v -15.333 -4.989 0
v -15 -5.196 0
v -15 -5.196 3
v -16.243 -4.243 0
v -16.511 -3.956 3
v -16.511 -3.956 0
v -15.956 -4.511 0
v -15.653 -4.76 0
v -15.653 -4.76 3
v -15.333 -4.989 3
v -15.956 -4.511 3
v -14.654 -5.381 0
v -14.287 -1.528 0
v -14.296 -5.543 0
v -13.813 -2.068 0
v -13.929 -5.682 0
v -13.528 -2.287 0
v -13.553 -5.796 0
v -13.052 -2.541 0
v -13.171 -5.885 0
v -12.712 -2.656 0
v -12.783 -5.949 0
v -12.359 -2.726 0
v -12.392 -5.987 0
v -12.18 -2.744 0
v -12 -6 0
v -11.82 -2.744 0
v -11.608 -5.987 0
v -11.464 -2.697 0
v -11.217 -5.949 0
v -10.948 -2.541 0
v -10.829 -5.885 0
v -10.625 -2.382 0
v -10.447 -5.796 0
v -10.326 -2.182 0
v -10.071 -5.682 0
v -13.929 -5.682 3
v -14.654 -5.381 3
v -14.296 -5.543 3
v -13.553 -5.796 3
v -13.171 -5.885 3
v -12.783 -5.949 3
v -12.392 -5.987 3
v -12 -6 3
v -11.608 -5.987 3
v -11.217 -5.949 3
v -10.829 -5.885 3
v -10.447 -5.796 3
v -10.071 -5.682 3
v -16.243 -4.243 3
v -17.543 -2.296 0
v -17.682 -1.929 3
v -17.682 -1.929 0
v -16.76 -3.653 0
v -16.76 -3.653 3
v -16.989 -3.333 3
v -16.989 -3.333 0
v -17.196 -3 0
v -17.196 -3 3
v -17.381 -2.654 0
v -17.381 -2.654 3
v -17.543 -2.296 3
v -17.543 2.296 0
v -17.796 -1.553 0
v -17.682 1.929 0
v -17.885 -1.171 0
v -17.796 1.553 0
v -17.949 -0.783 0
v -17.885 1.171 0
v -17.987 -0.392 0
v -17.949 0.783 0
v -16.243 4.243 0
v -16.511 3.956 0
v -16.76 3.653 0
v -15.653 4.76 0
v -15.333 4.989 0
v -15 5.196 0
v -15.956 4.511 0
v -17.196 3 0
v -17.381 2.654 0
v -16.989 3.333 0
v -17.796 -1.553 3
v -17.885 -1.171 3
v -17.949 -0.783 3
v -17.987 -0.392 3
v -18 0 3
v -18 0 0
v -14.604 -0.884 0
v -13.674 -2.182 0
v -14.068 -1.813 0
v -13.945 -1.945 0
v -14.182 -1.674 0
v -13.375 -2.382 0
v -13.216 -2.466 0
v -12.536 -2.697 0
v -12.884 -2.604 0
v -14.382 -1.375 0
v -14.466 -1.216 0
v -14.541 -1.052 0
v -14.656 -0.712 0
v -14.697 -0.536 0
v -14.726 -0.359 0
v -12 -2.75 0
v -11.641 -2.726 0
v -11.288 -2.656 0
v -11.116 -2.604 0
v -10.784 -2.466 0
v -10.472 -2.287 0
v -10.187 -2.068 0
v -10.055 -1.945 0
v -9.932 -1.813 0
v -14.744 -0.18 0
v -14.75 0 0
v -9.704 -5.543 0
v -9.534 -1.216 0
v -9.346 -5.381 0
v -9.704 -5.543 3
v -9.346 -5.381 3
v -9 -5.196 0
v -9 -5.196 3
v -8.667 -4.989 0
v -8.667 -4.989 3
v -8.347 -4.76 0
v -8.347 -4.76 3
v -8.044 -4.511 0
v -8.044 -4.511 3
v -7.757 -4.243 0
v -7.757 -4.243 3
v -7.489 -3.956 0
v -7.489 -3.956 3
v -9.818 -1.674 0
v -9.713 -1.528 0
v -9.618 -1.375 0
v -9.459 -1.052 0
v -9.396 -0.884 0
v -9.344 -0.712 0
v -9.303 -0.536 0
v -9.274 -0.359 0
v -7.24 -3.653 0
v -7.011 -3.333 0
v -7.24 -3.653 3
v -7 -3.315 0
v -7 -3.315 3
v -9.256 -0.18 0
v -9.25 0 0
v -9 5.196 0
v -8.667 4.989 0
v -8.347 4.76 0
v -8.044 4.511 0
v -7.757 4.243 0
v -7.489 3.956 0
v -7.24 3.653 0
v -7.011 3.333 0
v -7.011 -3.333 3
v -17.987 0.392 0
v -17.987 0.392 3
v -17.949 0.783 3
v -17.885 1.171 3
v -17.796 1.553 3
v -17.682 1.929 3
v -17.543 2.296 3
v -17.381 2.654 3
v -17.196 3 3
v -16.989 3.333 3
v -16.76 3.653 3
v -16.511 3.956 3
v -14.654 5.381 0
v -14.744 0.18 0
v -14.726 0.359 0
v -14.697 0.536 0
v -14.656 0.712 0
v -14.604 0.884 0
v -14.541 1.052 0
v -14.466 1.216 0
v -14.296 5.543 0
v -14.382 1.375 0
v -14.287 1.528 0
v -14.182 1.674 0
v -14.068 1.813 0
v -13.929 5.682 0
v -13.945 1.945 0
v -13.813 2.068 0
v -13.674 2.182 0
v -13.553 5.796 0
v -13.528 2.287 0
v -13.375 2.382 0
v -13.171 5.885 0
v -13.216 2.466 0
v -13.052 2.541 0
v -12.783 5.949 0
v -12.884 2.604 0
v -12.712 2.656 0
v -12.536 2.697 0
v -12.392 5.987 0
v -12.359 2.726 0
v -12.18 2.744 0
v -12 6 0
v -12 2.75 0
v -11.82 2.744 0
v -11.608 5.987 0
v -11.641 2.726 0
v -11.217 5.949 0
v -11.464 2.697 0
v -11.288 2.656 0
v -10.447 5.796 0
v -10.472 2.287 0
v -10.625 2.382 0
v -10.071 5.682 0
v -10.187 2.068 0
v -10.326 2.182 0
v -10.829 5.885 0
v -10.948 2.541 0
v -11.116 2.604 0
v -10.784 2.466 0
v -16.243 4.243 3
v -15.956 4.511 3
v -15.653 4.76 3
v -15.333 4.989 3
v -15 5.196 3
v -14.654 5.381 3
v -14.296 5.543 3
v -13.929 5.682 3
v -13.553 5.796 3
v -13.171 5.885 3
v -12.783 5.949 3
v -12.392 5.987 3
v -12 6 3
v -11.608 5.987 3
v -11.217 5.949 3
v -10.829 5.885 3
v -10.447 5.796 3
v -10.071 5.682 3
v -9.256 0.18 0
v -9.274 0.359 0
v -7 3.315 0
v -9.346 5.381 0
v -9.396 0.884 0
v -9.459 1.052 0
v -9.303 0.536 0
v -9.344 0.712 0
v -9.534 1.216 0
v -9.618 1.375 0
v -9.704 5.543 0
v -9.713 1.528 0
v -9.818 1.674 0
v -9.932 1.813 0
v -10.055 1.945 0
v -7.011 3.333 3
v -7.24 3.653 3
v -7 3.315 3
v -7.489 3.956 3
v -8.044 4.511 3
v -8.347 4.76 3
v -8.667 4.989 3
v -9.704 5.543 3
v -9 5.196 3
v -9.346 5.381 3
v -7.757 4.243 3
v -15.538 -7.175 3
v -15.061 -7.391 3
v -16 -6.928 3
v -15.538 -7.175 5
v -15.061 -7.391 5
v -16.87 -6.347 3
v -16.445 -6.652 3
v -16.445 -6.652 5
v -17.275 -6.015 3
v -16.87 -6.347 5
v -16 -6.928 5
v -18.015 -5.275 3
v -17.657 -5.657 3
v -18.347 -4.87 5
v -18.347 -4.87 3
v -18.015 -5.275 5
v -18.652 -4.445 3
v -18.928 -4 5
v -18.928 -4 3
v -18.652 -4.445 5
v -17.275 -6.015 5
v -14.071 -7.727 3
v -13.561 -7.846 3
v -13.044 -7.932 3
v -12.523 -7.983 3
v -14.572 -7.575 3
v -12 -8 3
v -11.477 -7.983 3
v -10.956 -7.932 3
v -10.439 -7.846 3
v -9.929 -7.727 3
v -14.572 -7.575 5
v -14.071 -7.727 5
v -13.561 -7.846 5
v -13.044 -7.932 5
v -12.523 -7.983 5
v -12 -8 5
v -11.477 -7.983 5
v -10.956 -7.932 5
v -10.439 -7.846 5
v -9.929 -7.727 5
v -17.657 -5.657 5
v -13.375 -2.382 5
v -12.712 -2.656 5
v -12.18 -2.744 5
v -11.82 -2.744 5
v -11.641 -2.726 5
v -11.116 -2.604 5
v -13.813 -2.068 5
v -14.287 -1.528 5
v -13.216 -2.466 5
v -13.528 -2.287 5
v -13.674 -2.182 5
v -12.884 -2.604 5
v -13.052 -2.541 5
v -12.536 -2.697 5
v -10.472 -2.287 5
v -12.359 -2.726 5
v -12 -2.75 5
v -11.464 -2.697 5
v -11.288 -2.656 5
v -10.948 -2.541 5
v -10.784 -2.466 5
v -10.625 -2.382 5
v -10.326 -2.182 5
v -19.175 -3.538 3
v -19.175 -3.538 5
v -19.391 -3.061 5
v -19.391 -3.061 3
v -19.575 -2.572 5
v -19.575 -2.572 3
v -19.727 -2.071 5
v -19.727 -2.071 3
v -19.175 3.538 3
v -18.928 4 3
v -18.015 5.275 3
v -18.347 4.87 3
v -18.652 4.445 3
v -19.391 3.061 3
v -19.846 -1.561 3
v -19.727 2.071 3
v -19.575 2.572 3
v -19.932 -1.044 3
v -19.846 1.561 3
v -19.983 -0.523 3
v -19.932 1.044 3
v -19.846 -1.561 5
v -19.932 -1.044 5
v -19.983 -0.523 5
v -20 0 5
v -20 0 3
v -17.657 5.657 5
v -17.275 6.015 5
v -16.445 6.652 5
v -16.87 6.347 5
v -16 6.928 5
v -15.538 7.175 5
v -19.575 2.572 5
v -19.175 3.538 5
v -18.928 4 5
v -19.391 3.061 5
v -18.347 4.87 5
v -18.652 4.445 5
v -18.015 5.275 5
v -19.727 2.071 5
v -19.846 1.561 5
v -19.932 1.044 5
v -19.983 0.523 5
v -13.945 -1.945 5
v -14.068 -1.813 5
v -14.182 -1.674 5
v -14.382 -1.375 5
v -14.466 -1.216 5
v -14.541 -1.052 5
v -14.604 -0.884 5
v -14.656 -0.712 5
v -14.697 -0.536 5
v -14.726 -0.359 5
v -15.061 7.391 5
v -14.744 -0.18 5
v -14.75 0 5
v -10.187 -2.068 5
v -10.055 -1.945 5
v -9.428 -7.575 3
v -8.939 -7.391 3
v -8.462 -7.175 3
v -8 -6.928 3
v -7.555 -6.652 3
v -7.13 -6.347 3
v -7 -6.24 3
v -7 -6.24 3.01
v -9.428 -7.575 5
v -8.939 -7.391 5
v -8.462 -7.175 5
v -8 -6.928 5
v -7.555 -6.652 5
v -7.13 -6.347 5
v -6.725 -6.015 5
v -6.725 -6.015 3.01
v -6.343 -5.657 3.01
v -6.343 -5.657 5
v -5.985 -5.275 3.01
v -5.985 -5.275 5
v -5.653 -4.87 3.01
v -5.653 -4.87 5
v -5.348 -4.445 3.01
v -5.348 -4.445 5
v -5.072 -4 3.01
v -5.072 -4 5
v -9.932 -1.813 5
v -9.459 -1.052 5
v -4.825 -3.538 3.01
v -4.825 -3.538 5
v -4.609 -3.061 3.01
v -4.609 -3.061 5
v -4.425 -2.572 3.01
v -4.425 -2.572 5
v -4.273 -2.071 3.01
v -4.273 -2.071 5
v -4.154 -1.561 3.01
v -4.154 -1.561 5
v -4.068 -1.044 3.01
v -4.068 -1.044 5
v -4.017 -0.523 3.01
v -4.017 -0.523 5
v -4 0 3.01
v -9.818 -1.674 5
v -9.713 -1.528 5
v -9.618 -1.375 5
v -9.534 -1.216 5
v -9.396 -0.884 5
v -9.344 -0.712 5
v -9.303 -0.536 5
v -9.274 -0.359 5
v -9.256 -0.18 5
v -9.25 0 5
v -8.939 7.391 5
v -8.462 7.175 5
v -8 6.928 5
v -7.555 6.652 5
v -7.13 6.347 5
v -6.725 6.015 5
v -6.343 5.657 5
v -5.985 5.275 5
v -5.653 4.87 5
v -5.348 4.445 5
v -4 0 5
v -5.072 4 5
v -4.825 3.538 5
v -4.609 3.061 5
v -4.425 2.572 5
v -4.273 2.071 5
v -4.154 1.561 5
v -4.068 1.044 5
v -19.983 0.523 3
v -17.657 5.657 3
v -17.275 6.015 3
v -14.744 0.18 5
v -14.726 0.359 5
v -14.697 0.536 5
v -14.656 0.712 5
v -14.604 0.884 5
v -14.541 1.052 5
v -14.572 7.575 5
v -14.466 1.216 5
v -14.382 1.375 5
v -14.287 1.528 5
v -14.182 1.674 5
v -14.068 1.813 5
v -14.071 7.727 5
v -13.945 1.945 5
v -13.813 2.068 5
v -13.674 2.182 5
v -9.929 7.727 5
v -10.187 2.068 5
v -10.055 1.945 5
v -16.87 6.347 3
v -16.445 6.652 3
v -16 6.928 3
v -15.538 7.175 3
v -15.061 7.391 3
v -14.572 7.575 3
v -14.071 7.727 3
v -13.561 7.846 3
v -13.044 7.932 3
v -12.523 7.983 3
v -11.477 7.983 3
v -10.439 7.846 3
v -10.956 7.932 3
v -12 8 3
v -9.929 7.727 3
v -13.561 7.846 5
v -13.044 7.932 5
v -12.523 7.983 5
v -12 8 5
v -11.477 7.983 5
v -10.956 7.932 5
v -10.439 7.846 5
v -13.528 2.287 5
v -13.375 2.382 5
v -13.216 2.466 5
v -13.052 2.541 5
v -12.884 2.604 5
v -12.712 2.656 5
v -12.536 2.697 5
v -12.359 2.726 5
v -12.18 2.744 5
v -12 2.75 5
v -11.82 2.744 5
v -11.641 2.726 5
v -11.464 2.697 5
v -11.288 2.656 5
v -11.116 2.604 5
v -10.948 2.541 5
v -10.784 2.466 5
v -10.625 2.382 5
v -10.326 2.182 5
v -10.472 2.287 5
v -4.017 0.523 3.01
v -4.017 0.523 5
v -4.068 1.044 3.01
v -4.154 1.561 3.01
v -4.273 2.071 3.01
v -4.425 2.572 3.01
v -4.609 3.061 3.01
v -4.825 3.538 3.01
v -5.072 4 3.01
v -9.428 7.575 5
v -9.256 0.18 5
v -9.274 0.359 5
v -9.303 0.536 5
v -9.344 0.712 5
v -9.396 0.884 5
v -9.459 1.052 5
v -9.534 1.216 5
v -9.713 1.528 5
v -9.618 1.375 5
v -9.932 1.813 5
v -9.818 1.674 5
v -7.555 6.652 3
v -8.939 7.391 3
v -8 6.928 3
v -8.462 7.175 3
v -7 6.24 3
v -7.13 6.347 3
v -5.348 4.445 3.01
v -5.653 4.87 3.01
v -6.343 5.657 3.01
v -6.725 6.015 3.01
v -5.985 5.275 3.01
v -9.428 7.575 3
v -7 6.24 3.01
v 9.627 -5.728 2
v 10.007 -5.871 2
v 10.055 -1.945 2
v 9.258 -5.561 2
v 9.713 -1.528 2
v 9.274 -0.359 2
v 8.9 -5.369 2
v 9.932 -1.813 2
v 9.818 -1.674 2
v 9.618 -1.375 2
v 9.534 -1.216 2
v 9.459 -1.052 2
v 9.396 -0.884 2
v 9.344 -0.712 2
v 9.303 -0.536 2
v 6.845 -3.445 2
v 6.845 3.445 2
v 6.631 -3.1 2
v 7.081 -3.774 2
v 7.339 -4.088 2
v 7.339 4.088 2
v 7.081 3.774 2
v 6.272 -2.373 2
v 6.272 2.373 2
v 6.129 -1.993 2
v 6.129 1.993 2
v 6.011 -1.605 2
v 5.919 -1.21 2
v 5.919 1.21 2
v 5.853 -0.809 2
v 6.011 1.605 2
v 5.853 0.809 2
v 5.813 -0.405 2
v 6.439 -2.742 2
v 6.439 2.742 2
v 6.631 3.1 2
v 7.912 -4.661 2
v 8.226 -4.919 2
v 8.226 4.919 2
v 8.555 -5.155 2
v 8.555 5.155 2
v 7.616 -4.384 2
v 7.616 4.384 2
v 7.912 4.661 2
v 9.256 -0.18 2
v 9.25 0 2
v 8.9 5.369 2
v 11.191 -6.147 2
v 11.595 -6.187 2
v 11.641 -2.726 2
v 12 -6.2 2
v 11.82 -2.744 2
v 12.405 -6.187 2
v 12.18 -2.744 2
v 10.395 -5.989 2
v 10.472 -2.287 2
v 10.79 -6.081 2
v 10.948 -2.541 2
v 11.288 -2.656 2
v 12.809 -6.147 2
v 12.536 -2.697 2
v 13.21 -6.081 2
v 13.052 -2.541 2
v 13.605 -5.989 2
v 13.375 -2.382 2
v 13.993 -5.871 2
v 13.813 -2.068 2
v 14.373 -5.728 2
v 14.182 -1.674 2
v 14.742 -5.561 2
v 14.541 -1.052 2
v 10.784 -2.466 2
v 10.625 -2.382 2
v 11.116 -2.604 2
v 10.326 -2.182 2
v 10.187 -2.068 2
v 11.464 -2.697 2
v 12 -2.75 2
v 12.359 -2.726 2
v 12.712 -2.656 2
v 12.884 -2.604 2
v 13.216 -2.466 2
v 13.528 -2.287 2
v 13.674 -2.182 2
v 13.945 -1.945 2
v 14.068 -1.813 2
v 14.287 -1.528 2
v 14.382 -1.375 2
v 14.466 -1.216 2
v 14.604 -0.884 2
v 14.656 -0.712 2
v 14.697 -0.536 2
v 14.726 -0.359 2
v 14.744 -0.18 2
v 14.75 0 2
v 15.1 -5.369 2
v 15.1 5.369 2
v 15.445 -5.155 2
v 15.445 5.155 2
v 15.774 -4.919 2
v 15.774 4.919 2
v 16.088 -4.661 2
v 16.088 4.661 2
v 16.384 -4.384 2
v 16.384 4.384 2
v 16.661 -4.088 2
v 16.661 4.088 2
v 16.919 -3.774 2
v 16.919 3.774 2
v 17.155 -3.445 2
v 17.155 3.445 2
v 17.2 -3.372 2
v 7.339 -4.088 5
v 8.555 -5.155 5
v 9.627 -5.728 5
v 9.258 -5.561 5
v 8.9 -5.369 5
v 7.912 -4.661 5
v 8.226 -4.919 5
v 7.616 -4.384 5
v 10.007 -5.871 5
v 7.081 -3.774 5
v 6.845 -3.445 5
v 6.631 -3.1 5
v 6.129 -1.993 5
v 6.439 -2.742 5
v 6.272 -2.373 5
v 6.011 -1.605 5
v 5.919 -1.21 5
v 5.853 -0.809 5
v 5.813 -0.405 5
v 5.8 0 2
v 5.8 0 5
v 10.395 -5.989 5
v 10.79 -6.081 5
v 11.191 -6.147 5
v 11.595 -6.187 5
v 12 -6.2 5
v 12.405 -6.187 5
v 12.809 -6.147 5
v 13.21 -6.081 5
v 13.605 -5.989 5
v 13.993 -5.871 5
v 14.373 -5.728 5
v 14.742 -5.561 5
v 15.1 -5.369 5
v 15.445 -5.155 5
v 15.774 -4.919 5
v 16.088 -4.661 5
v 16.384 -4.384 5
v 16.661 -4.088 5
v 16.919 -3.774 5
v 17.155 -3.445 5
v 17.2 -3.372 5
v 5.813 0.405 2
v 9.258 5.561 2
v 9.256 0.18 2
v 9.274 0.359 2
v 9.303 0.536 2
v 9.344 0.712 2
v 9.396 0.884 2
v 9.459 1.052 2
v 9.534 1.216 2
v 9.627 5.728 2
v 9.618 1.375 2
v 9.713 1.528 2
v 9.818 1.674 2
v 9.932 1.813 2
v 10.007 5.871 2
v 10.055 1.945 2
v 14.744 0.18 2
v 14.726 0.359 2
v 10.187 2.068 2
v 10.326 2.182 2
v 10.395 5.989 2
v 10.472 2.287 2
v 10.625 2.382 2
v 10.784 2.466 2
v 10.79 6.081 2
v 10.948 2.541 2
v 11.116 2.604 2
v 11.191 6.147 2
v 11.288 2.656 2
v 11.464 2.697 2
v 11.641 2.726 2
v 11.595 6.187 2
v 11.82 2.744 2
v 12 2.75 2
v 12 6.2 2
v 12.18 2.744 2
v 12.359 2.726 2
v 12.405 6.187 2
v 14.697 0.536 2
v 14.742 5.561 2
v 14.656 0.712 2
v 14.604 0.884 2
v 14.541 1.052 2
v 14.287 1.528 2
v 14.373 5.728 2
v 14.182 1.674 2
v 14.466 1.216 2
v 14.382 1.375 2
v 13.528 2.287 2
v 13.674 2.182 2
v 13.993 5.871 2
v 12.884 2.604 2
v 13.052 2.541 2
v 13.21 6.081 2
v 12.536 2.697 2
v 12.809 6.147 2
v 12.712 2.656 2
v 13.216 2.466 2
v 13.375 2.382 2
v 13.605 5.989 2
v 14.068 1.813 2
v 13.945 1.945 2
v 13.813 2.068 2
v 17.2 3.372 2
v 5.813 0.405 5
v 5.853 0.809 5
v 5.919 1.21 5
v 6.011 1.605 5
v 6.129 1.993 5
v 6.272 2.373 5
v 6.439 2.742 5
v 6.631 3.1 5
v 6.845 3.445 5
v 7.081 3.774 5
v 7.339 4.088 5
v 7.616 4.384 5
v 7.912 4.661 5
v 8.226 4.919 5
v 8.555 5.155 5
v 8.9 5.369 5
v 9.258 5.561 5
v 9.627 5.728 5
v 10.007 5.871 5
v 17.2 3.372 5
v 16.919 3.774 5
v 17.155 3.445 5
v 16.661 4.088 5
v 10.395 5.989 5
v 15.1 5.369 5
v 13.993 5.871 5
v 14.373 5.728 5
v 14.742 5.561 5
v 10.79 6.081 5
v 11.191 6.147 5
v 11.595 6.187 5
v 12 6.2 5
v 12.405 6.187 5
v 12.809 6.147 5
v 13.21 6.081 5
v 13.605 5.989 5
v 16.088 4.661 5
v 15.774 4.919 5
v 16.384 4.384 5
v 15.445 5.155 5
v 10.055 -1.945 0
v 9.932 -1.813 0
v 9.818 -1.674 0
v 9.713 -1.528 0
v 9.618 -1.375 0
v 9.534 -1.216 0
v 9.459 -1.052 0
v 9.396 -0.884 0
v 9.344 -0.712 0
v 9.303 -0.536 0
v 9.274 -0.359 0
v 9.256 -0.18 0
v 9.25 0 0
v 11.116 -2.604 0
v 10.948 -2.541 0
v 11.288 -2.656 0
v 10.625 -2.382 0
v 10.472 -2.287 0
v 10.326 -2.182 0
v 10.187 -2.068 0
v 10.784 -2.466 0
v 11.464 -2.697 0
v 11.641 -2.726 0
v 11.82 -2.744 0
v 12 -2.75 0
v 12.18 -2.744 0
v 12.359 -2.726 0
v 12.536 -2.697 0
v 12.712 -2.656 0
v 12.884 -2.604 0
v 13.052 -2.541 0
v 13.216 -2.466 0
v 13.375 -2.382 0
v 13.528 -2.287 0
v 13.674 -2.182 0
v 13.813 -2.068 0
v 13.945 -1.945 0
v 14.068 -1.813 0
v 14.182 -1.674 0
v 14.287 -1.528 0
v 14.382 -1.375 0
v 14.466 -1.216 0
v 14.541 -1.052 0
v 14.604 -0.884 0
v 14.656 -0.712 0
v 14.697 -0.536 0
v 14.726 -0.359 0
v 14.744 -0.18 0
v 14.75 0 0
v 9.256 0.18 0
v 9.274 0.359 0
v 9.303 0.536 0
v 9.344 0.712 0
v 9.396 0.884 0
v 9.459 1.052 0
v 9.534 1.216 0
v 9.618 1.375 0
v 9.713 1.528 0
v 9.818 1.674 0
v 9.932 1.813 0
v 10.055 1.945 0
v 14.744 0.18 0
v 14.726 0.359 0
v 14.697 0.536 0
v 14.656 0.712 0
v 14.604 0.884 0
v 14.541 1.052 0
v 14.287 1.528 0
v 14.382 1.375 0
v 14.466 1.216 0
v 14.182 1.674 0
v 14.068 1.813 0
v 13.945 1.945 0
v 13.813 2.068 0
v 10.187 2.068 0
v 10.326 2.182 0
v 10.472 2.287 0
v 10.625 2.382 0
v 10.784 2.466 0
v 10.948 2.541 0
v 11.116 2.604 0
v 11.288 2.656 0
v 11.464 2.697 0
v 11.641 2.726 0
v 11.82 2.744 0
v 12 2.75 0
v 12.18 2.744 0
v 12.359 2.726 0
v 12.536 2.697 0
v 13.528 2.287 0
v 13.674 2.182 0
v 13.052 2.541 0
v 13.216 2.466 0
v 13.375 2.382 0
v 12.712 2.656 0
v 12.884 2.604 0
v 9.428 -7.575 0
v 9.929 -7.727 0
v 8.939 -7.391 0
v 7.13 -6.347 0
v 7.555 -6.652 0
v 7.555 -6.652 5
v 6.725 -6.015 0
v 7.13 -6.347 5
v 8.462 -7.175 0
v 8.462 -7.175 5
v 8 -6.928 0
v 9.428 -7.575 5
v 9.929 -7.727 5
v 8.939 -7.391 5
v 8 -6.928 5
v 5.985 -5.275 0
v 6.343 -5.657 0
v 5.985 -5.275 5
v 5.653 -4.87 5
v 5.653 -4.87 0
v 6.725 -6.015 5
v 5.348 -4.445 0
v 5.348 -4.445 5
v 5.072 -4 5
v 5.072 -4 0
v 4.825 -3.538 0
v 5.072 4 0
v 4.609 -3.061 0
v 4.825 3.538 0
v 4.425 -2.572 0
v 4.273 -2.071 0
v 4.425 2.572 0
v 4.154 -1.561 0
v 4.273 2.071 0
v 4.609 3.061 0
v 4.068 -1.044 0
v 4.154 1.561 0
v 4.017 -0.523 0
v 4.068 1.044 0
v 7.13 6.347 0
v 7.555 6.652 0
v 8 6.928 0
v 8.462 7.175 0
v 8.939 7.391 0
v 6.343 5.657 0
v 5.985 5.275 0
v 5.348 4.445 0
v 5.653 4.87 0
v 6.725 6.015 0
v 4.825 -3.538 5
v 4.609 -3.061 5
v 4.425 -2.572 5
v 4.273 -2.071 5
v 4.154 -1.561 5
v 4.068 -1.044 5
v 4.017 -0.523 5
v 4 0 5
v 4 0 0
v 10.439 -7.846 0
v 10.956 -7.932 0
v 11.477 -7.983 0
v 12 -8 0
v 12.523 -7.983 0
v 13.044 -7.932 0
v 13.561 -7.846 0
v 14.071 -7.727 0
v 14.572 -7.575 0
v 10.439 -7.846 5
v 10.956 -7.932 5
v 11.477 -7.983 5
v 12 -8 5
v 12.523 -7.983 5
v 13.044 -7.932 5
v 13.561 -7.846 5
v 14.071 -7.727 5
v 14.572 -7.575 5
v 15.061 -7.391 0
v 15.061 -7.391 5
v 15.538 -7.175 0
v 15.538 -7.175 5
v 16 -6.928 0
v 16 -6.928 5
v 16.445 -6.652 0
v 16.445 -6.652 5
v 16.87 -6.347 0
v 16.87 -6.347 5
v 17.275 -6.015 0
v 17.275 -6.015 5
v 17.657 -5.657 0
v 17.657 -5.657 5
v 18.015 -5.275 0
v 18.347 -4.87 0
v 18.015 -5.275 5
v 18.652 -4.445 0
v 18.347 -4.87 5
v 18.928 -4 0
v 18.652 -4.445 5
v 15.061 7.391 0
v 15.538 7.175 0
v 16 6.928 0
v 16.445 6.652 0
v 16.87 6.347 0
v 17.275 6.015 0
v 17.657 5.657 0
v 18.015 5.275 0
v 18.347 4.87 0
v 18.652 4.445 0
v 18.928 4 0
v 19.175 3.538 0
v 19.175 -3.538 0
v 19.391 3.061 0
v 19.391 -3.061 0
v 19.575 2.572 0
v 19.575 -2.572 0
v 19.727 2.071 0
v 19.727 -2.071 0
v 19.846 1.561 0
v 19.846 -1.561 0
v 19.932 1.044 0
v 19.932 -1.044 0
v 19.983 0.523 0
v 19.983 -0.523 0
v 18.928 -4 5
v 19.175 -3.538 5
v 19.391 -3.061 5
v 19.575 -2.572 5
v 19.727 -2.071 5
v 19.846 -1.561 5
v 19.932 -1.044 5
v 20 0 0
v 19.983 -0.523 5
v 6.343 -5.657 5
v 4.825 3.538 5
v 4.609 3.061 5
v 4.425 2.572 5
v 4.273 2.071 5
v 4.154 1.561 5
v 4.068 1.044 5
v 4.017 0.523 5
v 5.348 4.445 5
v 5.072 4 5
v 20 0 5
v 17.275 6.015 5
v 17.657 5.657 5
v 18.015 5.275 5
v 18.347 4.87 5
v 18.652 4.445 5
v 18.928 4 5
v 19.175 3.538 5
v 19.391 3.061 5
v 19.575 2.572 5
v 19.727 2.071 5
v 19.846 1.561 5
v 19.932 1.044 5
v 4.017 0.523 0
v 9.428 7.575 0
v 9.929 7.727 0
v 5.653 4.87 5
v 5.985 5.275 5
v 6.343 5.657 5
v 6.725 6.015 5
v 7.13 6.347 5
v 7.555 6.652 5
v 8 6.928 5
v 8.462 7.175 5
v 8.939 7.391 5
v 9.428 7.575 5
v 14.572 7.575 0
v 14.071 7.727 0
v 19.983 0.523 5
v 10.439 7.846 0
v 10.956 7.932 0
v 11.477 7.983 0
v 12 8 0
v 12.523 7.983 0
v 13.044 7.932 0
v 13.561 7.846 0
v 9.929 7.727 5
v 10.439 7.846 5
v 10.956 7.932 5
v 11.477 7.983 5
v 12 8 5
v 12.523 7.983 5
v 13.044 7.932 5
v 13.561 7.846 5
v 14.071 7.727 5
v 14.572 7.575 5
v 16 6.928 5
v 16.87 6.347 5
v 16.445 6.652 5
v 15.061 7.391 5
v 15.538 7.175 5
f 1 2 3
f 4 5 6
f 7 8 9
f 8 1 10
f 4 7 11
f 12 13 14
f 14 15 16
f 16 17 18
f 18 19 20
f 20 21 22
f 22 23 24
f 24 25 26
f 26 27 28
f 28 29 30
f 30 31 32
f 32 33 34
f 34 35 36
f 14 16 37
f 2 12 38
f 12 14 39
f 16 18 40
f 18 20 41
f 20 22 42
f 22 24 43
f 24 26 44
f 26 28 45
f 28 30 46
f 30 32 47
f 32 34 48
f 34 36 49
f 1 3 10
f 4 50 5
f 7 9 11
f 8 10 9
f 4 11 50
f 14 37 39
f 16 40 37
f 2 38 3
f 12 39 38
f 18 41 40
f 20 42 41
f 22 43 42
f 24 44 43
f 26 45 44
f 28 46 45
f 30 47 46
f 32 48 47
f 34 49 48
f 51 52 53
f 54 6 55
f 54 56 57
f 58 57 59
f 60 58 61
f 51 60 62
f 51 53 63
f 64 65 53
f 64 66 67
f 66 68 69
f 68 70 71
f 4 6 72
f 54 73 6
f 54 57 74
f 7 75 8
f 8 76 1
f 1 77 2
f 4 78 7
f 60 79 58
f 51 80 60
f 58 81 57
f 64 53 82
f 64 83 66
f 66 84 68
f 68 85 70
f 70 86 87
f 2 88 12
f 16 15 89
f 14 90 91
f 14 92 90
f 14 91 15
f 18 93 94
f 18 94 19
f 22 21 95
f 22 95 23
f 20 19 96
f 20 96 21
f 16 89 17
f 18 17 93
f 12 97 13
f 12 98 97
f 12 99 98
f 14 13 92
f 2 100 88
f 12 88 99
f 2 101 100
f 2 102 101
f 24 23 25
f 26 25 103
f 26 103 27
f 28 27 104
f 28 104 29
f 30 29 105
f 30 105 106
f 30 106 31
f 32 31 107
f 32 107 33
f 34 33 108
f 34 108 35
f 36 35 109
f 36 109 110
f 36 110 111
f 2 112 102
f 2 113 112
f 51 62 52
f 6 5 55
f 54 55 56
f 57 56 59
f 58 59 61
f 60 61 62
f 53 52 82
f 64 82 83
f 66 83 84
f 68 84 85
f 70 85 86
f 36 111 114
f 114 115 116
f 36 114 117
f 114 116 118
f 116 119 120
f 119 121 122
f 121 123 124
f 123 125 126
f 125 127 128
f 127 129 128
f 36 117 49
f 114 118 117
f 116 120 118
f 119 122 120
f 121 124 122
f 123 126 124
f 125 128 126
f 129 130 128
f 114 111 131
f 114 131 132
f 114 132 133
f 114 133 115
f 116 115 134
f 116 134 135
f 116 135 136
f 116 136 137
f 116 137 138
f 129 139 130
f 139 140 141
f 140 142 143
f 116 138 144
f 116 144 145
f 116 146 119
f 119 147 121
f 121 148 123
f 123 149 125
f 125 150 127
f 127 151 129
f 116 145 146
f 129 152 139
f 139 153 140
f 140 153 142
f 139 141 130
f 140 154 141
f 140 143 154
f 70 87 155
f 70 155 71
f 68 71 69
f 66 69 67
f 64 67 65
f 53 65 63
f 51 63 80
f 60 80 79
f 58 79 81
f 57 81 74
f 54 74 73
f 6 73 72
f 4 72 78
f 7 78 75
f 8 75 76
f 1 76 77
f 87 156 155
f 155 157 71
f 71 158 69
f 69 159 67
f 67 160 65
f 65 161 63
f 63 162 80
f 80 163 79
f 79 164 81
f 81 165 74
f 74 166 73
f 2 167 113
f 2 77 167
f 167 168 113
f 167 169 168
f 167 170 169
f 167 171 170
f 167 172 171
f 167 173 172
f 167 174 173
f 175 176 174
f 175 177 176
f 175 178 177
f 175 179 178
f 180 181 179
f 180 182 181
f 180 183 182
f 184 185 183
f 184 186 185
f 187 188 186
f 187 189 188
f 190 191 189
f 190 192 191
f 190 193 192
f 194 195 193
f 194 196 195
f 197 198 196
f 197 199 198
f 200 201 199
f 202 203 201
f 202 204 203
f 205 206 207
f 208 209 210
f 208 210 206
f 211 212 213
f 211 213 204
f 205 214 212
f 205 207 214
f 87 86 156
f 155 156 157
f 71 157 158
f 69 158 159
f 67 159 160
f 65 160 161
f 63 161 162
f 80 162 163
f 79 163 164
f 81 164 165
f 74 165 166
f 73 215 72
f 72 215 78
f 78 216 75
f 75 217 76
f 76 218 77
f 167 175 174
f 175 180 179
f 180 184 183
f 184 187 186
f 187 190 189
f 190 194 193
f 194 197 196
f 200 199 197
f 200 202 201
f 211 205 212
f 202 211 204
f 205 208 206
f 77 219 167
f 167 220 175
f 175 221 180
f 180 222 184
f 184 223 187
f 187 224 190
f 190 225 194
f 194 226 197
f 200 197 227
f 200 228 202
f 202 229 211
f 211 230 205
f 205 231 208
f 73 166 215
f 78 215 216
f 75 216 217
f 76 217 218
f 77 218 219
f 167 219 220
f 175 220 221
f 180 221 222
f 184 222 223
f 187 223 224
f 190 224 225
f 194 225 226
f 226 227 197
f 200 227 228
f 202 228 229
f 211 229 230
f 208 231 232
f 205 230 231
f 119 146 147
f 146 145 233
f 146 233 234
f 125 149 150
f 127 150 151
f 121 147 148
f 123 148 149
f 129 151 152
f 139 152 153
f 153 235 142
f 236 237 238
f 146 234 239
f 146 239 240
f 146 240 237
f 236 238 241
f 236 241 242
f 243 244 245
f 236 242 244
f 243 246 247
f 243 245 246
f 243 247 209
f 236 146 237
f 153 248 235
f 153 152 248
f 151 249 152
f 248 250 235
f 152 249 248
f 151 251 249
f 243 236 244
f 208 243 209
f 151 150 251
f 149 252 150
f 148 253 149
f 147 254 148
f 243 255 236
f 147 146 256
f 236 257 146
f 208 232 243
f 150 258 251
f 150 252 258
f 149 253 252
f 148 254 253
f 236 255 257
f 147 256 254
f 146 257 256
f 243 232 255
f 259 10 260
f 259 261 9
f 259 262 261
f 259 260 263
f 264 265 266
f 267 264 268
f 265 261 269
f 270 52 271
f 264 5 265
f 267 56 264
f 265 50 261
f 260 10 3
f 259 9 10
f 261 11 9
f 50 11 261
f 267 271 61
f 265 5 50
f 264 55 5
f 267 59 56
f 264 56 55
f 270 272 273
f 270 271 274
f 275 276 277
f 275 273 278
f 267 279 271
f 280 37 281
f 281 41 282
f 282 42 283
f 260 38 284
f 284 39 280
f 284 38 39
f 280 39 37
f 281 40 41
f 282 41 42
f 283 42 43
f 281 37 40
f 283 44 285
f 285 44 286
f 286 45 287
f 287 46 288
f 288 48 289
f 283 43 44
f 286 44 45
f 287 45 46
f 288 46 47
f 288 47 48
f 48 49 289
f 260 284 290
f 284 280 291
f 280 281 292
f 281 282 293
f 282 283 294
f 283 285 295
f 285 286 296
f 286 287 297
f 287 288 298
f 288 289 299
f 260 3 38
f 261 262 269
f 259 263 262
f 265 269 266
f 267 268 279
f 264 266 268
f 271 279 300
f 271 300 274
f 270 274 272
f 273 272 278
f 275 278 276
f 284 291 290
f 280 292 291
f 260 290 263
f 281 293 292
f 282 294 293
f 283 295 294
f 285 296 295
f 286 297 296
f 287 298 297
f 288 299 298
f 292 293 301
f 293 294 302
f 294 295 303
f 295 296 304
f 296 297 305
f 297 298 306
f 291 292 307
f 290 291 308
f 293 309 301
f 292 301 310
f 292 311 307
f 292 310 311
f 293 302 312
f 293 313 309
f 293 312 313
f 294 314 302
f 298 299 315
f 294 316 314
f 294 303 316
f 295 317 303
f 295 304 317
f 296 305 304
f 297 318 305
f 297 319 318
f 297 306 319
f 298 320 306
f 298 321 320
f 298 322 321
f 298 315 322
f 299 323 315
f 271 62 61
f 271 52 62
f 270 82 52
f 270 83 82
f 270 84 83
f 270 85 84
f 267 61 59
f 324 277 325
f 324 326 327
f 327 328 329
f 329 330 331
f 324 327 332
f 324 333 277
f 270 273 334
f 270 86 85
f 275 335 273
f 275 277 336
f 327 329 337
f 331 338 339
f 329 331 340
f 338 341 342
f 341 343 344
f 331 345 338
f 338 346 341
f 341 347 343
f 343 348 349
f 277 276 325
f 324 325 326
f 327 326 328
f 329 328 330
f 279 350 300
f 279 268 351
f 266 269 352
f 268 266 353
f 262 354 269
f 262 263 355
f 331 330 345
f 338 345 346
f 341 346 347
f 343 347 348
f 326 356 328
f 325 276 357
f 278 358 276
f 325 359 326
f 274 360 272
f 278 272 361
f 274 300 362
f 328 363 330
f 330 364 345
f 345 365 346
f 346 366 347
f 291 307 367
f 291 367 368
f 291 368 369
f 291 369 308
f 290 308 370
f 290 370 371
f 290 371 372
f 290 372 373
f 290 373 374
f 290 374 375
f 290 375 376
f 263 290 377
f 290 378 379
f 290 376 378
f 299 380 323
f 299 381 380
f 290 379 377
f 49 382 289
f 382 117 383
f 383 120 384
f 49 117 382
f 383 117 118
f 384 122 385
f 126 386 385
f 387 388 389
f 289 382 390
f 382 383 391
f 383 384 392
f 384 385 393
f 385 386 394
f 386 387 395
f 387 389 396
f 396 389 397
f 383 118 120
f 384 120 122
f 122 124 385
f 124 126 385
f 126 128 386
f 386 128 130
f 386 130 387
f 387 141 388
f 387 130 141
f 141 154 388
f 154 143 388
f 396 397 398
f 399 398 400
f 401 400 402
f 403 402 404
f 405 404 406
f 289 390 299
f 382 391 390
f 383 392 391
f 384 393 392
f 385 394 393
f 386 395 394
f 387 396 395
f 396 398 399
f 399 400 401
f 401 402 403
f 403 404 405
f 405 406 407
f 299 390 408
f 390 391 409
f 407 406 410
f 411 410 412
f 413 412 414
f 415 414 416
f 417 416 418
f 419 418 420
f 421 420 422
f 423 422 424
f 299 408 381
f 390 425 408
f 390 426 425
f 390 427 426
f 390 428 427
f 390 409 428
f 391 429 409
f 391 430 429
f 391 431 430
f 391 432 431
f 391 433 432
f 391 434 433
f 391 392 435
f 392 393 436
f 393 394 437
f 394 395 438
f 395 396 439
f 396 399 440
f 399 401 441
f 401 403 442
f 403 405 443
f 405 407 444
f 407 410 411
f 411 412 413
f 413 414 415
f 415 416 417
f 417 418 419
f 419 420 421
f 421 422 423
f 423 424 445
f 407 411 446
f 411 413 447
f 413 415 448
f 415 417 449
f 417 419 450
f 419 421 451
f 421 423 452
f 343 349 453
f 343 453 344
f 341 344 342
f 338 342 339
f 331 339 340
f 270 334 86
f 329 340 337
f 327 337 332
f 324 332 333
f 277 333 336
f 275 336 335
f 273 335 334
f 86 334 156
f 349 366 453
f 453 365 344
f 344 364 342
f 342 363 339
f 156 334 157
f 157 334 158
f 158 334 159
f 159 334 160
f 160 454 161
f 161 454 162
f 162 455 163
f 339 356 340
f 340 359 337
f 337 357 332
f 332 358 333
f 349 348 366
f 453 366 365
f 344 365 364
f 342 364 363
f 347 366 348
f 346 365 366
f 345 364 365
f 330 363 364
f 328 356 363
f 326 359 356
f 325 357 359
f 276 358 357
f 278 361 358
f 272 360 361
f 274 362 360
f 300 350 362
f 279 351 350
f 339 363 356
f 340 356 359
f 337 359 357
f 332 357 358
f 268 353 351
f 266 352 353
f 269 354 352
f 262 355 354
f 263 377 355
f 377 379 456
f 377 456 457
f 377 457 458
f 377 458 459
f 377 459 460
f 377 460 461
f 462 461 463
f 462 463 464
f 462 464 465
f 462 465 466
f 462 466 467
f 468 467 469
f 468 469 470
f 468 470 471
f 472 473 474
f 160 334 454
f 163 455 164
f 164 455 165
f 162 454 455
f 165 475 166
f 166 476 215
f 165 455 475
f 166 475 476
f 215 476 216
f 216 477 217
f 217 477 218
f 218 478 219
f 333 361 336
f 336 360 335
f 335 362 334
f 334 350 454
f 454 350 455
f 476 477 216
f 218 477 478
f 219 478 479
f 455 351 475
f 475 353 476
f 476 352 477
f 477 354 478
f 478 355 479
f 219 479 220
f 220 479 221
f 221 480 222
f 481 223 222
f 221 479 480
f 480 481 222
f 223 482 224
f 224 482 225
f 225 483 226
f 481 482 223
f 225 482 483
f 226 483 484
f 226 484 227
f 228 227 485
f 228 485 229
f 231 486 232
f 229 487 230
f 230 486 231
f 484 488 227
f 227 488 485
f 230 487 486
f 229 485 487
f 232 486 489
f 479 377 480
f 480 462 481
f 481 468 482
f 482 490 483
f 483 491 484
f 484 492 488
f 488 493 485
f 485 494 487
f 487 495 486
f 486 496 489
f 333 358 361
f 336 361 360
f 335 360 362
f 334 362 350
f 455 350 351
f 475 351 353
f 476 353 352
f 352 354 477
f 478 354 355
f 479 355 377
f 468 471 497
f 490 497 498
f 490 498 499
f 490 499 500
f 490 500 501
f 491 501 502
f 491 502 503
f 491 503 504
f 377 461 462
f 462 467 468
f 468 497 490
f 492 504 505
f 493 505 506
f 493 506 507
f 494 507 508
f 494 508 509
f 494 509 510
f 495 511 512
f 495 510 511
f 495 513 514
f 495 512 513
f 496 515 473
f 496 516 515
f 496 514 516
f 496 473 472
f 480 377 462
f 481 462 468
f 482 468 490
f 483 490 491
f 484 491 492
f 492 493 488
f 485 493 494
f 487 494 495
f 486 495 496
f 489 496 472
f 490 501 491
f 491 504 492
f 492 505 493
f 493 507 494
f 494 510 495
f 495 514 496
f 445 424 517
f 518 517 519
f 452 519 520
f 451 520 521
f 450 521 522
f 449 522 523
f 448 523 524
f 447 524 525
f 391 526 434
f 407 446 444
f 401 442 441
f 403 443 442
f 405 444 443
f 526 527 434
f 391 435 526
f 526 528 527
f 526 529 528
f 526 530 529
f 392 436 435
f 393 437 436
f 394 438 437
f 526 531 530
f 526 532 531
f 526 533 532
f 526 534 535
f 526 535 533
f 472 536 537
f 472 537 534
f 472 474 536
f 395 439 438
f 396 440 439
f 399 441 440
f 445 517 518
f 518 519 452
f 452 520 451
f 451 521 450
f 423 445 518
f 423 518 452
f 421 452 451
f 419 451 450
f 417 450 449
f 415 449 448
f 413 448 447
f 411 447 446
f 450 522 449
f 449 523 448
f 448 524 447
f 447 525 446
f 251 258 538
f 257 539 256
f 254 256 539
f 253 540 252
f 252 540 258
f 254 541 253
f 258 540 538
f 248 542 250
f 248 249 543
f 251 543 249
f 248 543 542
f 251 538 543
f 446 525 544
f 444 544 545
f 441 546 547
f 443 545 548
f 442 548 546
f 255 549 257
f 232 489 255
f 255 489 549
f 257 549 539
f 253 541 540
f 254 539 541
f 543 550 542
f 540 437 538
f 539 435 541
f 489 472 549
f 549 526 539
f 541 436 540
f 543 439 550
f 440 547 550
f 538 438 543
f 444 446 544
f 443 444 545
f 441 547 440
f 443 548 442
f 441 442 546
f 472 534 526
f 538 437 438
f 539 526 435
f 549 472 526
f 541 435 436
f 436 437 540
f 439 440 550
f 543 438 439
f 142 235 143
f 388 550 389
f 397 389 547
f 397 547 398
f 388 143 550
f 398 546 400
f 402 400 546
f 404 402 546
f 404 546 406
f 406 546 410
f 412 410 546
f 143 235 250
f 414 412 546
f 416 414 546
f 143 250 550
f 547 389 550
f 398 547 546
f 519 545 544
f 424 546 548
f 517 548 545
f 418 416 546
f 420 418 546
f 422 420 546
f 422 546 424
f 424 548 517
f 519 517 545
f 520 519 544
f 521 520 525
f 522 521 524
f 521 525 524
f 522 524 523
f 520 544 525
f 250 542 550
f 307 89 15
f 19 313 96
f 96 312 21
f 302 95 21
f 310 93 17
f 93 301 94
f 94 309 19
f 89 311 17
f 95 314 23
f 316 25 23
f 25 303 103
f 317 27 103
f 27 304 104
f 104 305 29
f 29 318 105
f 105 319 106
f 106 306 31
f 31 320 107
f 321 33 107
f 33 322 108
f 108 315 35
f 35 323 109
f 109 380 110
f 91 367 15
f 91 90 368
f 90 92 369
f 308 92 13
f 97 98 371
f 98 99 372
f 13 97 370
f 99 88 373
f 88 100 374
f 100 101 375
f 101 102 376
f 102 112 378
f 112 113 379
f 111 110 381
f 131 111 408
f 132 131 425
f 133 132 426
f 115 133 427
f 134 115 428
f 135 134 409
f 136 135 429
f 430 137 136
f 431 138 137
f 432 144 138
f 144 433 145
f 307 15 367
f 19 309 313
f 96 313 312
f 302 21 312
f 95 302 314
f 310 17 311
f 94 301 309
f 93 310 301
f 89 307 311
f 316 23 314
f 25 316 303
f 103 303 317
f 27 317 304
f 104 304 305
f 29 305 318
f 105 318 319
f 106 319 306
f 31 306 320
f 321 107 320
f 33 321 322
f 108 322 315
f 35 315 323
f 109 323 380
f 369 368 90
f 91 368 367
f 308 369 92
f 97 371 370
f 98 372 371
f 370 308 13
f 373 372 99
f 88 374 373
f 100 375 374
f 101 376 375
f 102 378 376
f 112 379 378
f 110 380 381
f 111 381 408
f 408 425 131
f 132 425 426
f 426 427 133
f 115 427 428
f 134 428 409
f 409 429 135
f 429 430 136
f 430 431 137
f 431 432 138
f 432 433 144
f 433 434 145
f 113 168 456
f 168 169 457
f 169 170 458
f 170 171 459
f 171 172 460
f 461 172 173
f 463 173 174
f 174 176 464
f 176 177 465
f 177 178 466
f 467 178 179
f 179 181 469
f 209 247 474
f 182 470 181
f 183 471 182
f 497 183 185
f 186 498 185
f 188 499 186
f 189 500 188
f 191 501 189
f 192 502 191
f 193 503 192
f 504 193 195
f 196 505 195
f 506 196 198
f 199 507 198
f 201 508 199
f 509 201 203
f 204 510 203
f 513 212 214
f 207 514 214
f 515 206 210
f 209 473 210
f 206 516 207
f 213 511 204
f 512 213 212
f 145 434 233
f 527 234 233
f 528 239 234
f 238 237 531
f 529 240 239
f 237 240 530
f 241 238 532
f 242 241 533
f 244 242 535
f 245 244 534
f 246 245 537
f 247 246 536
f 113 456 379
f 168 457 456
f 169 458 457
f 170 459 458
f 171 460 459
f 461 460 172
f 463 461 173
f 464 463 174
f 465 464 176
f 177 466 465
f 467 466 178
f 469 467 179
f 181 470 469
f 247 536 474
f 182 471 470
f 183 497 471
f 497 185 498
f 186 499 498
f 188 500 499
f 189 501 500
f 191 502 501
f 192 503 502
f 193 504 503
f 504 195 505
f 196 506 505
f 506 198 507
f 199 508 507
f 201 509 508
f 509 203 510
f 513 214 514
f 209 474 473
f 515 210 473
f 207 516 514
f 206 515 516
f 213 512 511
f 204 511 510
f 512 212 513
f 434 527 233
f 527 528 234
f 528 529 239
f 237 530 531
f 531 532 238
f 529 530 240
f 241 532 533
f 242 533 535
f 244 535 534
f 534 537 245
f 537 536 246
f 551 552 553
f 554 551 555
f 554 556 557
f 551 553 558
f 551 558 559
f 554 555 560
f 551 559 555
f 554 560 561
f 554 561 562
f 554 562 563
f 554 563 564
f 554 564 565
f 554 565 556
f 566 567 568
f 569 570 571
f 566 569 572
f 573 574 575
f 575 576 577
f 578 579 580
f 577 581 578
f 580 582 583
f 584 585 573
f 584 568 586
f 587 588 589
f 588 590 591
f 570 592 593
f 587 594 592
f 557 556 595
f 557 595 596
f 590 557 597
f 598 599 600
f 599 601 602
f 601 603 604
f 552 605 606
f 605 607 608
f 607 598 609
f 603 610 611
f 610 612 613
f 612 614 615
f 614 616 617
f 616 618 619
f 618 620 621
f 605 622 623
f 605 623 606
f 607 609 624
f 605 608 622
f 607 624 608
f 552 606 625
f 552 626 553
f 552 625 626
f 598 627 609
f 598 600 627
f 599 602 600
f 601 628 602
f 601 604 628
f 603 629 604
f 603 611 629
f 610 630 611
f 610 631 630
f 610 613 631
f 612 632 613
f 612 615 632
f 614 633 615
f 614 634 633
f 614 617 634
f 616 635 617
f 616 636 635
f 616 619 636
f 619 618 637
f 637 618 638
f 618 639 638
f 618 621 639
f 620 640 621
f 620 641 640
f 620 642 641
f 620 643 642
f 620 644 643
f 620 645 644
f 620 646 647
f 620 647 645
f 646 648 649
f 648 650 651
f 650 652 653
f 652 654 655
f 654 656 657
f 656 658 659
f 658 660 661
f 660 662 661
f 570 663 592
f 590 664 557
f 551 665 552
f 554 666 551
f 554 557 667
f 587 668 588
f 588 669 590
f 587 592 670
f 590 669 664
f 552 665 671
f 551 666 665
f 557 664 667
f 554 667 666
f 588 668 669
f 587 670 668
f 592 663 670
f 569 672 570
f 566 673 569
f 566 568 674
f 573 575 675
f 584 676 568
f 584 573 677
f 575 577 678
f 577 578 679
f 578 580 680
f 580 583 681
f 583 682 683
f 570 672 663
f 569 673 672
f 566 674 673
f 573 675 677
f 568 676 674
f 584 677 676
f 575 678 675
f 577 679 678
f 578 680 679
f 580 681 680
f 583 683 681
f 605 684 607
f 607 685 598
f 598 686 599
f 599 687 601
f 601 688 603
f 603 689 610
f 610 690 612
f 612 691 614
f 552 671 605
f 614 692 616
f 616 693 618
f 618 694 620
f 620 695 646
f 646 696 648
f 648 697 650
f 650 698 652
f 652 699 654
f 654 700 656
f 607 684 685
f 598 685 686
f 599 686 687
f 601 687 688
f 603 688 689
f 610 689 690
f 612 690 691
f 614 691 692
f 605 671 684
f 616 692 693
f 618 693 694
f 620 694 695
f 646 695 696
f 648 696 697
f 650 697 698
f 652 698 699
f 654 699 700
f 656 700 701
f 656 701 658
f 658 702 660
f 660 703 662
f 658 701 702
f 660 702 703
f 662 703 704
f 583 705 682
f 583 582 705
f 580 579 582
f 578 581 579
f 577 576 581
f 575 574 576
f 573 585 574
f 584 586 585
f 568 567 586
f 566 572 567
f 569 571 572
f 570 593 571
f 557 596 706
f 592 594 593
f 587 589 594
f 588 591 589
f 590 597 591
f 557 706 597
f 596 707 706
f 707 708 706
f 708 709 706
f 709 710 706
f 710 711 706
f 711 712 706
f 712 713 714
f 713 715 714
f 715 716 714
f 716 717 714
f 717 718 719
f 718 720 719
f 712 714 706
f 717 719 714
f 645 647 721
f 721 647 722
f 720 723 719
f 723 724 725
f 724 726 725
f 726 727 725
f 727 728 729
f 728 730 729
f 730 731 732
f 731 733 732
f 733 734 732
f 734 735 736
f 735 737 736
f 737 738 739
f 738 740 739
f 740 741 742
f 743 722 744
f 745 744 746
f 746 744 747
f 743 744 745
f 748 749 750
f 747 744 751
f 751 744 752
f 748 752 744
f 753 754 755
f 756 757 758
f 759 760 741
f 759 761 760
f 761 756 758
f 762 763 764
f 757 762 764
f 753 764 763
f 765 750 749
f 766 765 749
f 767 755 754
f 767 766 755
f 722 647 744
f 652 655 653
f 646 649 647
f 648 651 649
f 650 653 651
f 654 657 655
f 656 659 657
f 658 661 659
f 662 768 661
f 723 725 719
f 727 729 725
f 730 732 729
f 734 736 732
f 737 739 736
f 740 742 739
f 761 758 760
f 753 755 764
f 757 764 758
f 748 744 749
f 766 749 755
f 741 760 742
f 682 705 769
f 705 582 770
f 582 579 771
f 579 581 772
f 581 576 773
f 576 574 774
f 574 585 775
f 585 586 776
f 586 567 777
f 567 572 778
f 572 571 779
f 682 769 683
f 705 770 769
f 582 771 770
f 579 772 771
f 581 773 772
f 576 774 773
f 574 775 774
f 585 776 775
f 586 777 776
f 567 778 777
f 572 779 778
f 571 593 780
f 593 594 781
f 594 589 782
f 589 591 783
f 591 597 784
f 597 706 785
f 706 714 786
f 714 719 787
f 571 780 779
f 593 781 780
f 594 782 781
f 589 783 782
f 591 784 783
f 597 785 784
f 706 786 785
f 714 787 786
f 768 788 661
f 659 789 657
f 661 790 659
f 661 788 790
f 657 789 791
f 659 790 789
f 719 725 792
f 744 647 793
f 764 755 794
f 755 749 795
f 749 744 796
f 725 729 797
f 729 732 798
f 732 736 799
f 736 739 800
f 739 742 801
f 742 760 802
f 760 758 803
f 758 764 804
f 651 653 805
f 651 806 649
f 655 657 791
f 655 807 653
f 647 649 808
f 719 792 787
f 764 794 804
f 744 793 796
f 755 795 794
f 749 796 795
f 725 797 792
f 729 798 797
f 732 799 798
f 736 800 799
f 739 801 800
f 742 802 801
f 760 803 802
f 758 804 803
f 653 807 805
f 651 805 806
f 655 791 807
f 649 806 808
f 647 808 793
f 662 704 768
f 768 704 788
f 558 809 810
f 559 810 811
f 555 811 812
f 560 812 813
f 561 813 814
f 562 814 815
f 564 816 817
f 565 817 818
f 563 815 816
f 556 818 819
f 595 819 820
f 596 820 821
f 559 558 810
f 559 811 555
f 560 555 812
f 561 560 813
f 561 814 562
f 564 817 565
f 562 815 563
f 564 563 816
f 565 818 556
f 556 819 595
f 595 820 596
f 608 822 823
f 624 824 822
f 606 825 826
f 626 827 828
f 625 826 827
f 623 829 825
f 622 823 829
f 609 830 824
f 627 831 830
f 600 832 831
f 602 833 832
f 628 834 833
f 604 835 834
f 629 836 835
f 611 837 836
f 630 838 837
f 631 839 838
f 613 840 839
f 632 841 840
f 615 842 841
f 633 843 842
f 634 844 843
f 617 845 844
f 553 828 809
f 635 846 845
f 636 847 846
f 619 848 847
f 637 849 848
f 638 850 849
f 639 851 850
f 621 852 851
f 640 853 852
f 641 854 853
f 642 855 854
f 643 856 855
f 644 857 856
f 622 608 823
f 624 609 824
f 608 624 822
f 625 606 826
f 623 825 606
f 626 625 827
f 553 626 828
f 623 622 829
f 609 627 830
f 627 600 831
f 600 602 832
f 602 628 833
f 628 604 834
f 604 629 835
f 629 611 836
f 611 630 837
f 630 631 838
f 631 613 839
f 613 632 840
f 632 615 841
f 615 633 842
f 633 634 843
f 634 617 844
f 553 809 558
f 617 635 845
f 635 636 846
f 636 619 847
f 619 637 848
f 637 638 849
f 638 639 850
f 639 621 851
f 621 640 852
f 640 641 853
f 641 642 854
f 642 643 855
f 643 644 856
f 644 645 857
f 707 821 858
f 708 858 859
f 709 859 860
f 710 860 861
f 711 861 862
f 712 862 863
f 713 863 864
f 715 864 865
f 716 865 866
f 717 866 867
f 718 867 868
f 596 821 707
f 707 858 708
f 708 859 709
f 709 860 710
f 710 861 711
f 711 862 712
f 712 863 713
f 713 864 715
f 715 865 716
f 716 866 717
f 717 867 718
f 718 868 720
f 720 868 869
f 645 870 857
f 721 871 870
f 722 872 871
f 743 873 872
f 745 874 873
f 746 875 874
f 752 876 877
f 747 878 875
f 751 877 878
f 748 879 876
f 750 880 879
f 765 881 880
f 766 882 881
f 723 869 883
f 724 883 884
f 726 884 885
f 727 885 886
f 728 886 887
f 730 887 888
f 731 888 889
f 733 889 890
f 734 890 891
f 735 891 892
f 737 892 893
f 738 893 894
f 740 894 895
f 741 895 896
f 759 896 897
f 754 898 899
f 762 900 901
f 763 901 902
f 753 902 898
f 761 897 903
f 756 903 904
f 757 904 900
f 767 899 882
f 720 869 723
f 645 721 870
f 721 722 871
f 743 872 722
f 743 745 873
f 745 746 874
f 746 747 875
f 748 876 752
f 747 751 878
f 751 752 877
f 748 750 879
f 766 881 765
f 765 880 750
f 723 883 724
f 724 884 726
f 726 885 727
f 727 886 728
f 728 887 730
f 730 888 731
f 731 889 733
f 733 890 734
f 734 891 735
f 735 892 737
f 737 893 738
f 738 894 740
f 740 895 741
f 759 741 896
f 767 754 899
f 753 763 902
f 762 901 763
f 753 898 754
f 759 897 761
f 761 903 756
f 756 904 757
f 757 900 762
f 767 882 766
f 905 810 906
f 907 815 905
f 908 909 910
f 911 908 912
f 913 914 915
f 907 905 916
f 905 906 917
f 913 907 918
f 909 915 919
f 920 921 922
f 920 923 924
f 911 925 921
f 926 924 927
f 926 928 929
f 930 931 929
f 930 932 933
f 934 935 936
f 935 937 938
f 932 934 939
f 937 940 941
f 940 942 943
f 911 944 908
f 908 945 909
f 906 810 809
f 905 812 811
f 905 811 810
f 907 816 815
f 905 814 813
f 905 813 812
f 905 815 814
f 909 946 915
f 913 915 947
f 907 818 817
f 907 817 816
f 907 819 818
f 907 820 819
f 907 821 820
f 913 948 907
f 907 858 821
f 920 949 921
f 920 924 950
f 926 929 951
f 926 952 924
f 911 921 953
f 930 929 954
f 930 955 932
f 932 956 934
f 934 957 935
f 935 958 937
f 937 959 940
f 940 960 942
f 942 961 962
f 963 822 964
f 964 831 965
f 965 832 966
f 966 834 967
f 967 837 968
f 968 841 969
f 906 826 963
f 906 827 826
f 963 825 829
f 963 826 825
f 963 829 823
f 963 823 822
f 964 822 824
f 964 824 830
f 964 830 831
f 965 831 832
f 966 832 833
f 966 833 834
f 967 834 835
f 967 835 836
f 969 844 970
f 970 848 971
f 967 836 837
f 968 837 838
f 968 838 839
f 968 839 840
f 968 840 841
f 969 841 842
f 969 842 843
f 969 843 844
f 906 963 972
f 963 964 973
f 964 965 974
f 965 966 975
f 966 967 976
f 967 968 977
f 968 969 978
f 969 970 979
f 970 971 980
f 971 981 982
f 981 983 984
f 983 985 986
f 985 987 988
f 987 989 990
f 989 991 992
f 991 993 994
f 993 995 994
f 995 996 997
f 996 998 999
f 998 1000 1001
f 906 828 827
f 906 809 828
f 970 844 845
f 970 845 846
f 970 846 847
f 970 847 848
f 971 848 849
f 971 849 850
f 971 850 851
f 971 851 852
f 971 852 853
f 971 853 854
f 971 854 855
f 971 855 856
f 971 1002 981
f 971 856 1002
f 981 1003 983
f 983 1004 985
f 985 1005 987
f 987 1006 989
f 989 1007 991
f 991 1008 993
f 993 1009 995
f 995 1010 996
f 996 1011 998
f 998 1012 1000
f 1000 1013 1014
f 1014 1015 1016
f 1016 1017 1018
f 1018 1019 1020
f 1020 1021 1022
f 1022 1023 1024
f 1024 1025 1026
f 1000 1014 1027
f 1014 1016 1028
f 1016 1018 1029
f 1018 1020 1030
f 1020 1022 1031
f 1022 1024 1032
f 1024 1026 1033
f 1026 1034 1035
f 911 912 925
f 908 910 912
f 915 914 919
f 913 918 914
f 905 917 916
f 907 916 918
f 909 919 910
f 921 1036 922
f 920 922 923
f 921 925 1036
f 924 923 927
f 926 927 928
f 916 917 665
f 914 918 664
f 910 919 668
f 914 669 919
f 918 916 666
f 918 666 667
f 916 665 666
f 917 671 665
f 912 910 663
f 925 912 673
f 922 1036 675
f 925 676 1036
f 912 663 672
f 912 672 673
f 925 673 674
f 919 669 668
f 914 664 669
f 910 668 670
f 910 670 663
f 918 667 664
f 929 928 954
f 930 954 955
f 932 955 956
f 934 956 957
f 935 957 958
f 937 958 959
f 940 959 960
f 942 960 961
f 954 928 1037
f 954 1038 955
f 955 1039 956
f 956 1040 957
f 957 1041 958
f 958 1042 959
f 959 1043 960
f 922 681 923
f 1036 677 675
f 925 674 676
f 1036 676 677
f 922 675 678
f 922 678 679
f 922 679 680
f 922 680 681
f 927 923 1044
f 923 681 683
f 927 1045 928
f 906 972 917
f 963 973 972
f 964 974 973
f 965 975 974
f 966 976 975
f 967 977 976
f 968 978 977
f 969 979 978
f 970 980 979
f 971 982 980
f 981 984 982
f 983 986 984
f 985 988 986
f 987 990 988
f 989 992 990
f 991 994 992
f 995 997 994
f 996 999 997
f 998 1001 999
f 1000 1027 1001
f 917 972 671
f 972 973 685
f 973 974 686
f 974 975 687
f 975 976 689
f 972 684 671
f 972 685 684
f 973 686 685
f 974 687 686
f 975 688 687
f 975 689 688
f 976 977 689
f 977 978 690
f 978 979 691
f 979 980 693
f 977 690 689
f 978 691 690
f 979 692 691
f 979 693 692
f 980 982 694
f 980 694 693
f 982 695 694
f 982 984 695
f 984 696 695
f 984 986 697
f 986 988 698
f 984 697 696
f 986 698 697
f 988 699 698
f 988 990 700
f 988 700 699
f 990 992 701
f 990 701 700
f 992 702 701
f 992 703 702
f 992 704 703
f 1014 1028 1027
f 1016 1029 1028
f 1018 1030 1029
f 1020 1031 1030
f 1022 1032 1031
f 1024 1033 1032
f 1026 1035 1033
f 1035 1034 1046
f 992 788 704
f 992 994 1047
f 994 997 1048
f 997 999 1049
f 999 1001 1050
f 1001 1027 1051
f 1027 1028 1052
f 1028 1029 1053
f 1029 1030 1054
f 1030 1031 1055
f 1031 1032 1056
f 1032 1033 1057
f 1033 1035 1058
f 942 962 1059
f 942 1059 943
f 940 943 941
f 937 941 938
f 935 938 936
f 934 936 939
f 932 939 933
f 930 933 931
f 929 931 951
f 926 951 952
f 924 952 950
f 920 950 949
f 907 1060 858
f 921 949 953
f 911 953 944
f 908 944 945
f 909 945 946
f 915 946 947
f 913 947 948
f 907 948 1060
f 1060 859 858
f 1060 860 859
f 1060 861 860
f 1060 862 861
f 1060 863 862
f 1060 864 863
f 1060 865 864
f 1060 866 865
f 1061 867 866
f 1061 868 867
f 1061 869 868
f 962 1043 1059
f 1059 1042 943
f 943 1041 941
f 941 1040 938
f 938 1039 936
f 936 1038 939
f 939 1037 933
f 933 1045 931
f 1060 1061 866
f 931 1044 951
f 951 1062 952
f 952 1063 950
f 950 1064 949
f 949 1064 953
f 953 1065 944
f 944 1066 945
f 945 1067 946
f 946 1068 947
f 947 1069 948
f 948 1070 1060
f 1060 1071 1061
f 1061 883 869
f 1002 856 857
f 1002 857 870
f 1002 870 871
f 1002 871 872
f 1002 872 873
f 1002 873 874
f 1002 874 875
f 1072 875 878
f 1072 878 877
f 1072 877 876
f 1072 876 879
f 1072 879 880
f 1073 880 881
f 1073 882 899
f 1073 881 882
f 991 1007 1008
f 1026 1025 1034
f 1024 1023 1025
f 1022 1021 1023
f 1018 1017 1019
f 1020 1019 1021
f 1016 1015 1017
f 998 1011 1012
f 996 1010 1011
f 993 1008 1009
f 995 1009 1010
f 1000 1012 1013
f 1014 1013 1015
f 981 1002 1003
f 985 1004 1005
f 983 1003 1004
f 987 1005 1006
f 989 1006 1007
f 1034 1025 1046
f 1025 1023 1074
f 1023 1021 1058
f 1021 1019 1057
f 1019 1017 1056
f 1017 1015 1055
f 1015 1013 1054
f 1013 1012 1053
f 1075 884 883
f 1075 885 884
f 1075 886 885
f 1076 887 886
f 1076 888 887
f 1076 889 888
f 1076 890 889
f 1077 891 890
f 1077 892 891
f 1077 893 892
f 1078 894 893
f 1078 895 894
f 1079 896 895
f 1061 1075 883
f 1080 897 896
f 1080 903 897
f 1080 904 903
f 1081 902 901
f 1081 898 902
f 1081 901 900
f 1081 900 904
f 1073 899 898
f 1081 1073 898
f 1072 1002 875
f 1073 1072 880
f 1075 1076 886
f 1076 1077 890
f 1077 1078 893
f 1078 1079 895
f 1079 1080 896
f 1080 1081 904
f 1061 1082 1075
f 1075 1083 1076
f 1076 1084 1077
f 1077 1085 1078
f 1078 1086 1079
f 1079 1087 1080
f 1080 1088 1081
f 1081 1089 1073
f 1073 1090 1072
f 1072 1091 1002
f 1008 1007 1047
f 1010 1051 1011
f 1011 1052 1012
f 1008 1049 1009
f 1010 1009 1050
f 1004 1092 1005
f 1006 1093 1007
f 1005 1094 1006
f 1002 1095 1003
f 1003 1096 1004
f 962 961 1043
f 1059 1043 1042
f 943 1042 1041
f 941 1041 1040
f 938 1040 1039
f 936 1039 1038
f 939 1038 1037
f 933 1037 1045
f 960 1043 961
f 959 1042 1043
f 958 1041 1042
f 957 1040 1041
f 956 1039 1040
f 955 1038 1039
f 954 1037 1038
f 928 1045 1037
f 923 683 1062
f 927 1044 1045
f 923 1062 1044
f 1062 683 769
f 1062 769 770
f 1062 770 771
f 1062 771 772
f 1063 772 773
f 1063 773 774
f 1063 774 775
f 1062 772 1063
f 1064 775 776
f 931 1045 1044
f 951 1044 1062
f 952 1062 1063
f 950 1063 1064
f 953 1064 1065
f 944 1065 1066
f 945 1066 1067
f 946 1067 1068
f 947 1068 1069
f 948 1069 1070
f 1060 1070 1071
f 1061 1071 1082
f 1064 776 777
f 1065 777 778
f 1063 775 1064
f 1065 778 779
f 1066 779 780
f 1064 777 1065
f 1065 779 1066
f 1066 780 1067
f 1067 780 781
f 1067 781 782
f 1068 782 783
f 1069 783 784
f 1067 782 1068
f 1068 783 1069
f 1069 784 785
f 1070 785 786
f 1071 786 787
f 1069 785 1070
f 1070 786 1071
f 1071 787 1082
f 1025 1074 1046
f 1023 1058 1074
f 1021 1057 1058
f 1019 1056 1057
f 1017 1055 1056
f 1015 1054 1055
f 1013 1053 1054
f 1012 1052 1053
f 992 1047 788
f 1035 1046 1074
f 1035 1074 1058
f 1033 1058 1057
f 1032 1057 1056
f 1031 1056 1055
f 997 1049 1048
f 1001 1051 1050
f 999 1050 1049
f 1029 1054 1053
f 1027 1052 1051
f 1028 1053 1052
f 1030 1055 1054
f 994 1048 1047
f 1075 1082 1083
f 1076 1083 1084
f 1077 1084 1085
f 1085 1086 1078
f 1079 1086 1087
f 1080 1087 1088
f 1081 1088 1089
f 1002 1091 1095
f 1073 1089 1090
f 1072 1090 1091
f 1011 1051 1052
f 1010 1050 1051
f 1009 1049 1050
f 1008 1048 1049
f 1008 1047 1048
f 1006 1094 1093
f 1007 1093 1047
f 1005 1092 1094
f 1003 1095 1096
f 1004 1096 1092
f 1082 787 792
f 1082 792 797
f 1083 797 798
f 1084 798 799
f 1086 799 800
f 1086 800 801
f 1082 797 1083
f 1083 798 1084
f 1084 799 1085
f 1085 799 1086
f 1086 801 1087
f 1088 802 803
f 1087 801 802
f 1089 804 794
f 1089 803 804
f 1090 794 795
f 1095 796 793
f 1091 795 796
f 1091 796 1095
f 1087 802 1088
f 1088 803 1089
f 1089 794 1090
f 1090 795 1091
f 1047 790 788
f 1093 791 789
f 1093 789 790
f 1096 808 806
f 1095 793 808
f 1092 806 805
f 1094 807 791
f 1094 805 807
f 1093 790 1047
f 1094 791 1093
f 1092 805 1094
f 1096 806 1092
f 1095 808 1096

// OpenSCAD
// Optional test print. Bearing seats left to right: radial allowance 0, 0.10, 0.20 mm.
$fn=96;
difference() {
	union() {
		translate(v = [-12, 0, 0]) {
			rotate(a = [0, 0, 0]) {
				difference() {
					union() {
						cylinder(h = 3.0, r = 6.0);
						translate(v = [0, 0, 3.0]) {
							cylinder(h = 2, r = 8);
						}
					}
					union() {
						translate(v = [5.0, -12.0, -0.01]) {
							cube(size = [12.0, 24.0, 3.02]);
						}
						translate(v = [0, 0, -0.01]) {
							cylinder(h = 5.02, r = 2.75);
						}
					}
				}
			}
		}
		translate(v = [12, 0, 0]) {
			rotate(a = [0, 0, 0]) {
				difference() {
					union() {
						cylinder(h = 5.0, r = 8);
					}
					union() {
						translate(v = [0, 0, 2]) {
							rotate(a = [0, 0, 0]) {
								difference() {
									union() {
										cylinder(h = 3.02, r = 6.199999999999999);
									}
									union() {
										translate(v = [5.199999999999999, -12.399999999999999, -0.01]) {
											cube(size = [12.399999999999999, 24.799999999999997, 3.04]);
										}
									}
								}
							}
						}
						translate(v = [0, 0, -0.01]) {
							cylinder(h = 5.02, r = 2.75);
						}
					}
				}
			}
		}
	}
	union();
}
